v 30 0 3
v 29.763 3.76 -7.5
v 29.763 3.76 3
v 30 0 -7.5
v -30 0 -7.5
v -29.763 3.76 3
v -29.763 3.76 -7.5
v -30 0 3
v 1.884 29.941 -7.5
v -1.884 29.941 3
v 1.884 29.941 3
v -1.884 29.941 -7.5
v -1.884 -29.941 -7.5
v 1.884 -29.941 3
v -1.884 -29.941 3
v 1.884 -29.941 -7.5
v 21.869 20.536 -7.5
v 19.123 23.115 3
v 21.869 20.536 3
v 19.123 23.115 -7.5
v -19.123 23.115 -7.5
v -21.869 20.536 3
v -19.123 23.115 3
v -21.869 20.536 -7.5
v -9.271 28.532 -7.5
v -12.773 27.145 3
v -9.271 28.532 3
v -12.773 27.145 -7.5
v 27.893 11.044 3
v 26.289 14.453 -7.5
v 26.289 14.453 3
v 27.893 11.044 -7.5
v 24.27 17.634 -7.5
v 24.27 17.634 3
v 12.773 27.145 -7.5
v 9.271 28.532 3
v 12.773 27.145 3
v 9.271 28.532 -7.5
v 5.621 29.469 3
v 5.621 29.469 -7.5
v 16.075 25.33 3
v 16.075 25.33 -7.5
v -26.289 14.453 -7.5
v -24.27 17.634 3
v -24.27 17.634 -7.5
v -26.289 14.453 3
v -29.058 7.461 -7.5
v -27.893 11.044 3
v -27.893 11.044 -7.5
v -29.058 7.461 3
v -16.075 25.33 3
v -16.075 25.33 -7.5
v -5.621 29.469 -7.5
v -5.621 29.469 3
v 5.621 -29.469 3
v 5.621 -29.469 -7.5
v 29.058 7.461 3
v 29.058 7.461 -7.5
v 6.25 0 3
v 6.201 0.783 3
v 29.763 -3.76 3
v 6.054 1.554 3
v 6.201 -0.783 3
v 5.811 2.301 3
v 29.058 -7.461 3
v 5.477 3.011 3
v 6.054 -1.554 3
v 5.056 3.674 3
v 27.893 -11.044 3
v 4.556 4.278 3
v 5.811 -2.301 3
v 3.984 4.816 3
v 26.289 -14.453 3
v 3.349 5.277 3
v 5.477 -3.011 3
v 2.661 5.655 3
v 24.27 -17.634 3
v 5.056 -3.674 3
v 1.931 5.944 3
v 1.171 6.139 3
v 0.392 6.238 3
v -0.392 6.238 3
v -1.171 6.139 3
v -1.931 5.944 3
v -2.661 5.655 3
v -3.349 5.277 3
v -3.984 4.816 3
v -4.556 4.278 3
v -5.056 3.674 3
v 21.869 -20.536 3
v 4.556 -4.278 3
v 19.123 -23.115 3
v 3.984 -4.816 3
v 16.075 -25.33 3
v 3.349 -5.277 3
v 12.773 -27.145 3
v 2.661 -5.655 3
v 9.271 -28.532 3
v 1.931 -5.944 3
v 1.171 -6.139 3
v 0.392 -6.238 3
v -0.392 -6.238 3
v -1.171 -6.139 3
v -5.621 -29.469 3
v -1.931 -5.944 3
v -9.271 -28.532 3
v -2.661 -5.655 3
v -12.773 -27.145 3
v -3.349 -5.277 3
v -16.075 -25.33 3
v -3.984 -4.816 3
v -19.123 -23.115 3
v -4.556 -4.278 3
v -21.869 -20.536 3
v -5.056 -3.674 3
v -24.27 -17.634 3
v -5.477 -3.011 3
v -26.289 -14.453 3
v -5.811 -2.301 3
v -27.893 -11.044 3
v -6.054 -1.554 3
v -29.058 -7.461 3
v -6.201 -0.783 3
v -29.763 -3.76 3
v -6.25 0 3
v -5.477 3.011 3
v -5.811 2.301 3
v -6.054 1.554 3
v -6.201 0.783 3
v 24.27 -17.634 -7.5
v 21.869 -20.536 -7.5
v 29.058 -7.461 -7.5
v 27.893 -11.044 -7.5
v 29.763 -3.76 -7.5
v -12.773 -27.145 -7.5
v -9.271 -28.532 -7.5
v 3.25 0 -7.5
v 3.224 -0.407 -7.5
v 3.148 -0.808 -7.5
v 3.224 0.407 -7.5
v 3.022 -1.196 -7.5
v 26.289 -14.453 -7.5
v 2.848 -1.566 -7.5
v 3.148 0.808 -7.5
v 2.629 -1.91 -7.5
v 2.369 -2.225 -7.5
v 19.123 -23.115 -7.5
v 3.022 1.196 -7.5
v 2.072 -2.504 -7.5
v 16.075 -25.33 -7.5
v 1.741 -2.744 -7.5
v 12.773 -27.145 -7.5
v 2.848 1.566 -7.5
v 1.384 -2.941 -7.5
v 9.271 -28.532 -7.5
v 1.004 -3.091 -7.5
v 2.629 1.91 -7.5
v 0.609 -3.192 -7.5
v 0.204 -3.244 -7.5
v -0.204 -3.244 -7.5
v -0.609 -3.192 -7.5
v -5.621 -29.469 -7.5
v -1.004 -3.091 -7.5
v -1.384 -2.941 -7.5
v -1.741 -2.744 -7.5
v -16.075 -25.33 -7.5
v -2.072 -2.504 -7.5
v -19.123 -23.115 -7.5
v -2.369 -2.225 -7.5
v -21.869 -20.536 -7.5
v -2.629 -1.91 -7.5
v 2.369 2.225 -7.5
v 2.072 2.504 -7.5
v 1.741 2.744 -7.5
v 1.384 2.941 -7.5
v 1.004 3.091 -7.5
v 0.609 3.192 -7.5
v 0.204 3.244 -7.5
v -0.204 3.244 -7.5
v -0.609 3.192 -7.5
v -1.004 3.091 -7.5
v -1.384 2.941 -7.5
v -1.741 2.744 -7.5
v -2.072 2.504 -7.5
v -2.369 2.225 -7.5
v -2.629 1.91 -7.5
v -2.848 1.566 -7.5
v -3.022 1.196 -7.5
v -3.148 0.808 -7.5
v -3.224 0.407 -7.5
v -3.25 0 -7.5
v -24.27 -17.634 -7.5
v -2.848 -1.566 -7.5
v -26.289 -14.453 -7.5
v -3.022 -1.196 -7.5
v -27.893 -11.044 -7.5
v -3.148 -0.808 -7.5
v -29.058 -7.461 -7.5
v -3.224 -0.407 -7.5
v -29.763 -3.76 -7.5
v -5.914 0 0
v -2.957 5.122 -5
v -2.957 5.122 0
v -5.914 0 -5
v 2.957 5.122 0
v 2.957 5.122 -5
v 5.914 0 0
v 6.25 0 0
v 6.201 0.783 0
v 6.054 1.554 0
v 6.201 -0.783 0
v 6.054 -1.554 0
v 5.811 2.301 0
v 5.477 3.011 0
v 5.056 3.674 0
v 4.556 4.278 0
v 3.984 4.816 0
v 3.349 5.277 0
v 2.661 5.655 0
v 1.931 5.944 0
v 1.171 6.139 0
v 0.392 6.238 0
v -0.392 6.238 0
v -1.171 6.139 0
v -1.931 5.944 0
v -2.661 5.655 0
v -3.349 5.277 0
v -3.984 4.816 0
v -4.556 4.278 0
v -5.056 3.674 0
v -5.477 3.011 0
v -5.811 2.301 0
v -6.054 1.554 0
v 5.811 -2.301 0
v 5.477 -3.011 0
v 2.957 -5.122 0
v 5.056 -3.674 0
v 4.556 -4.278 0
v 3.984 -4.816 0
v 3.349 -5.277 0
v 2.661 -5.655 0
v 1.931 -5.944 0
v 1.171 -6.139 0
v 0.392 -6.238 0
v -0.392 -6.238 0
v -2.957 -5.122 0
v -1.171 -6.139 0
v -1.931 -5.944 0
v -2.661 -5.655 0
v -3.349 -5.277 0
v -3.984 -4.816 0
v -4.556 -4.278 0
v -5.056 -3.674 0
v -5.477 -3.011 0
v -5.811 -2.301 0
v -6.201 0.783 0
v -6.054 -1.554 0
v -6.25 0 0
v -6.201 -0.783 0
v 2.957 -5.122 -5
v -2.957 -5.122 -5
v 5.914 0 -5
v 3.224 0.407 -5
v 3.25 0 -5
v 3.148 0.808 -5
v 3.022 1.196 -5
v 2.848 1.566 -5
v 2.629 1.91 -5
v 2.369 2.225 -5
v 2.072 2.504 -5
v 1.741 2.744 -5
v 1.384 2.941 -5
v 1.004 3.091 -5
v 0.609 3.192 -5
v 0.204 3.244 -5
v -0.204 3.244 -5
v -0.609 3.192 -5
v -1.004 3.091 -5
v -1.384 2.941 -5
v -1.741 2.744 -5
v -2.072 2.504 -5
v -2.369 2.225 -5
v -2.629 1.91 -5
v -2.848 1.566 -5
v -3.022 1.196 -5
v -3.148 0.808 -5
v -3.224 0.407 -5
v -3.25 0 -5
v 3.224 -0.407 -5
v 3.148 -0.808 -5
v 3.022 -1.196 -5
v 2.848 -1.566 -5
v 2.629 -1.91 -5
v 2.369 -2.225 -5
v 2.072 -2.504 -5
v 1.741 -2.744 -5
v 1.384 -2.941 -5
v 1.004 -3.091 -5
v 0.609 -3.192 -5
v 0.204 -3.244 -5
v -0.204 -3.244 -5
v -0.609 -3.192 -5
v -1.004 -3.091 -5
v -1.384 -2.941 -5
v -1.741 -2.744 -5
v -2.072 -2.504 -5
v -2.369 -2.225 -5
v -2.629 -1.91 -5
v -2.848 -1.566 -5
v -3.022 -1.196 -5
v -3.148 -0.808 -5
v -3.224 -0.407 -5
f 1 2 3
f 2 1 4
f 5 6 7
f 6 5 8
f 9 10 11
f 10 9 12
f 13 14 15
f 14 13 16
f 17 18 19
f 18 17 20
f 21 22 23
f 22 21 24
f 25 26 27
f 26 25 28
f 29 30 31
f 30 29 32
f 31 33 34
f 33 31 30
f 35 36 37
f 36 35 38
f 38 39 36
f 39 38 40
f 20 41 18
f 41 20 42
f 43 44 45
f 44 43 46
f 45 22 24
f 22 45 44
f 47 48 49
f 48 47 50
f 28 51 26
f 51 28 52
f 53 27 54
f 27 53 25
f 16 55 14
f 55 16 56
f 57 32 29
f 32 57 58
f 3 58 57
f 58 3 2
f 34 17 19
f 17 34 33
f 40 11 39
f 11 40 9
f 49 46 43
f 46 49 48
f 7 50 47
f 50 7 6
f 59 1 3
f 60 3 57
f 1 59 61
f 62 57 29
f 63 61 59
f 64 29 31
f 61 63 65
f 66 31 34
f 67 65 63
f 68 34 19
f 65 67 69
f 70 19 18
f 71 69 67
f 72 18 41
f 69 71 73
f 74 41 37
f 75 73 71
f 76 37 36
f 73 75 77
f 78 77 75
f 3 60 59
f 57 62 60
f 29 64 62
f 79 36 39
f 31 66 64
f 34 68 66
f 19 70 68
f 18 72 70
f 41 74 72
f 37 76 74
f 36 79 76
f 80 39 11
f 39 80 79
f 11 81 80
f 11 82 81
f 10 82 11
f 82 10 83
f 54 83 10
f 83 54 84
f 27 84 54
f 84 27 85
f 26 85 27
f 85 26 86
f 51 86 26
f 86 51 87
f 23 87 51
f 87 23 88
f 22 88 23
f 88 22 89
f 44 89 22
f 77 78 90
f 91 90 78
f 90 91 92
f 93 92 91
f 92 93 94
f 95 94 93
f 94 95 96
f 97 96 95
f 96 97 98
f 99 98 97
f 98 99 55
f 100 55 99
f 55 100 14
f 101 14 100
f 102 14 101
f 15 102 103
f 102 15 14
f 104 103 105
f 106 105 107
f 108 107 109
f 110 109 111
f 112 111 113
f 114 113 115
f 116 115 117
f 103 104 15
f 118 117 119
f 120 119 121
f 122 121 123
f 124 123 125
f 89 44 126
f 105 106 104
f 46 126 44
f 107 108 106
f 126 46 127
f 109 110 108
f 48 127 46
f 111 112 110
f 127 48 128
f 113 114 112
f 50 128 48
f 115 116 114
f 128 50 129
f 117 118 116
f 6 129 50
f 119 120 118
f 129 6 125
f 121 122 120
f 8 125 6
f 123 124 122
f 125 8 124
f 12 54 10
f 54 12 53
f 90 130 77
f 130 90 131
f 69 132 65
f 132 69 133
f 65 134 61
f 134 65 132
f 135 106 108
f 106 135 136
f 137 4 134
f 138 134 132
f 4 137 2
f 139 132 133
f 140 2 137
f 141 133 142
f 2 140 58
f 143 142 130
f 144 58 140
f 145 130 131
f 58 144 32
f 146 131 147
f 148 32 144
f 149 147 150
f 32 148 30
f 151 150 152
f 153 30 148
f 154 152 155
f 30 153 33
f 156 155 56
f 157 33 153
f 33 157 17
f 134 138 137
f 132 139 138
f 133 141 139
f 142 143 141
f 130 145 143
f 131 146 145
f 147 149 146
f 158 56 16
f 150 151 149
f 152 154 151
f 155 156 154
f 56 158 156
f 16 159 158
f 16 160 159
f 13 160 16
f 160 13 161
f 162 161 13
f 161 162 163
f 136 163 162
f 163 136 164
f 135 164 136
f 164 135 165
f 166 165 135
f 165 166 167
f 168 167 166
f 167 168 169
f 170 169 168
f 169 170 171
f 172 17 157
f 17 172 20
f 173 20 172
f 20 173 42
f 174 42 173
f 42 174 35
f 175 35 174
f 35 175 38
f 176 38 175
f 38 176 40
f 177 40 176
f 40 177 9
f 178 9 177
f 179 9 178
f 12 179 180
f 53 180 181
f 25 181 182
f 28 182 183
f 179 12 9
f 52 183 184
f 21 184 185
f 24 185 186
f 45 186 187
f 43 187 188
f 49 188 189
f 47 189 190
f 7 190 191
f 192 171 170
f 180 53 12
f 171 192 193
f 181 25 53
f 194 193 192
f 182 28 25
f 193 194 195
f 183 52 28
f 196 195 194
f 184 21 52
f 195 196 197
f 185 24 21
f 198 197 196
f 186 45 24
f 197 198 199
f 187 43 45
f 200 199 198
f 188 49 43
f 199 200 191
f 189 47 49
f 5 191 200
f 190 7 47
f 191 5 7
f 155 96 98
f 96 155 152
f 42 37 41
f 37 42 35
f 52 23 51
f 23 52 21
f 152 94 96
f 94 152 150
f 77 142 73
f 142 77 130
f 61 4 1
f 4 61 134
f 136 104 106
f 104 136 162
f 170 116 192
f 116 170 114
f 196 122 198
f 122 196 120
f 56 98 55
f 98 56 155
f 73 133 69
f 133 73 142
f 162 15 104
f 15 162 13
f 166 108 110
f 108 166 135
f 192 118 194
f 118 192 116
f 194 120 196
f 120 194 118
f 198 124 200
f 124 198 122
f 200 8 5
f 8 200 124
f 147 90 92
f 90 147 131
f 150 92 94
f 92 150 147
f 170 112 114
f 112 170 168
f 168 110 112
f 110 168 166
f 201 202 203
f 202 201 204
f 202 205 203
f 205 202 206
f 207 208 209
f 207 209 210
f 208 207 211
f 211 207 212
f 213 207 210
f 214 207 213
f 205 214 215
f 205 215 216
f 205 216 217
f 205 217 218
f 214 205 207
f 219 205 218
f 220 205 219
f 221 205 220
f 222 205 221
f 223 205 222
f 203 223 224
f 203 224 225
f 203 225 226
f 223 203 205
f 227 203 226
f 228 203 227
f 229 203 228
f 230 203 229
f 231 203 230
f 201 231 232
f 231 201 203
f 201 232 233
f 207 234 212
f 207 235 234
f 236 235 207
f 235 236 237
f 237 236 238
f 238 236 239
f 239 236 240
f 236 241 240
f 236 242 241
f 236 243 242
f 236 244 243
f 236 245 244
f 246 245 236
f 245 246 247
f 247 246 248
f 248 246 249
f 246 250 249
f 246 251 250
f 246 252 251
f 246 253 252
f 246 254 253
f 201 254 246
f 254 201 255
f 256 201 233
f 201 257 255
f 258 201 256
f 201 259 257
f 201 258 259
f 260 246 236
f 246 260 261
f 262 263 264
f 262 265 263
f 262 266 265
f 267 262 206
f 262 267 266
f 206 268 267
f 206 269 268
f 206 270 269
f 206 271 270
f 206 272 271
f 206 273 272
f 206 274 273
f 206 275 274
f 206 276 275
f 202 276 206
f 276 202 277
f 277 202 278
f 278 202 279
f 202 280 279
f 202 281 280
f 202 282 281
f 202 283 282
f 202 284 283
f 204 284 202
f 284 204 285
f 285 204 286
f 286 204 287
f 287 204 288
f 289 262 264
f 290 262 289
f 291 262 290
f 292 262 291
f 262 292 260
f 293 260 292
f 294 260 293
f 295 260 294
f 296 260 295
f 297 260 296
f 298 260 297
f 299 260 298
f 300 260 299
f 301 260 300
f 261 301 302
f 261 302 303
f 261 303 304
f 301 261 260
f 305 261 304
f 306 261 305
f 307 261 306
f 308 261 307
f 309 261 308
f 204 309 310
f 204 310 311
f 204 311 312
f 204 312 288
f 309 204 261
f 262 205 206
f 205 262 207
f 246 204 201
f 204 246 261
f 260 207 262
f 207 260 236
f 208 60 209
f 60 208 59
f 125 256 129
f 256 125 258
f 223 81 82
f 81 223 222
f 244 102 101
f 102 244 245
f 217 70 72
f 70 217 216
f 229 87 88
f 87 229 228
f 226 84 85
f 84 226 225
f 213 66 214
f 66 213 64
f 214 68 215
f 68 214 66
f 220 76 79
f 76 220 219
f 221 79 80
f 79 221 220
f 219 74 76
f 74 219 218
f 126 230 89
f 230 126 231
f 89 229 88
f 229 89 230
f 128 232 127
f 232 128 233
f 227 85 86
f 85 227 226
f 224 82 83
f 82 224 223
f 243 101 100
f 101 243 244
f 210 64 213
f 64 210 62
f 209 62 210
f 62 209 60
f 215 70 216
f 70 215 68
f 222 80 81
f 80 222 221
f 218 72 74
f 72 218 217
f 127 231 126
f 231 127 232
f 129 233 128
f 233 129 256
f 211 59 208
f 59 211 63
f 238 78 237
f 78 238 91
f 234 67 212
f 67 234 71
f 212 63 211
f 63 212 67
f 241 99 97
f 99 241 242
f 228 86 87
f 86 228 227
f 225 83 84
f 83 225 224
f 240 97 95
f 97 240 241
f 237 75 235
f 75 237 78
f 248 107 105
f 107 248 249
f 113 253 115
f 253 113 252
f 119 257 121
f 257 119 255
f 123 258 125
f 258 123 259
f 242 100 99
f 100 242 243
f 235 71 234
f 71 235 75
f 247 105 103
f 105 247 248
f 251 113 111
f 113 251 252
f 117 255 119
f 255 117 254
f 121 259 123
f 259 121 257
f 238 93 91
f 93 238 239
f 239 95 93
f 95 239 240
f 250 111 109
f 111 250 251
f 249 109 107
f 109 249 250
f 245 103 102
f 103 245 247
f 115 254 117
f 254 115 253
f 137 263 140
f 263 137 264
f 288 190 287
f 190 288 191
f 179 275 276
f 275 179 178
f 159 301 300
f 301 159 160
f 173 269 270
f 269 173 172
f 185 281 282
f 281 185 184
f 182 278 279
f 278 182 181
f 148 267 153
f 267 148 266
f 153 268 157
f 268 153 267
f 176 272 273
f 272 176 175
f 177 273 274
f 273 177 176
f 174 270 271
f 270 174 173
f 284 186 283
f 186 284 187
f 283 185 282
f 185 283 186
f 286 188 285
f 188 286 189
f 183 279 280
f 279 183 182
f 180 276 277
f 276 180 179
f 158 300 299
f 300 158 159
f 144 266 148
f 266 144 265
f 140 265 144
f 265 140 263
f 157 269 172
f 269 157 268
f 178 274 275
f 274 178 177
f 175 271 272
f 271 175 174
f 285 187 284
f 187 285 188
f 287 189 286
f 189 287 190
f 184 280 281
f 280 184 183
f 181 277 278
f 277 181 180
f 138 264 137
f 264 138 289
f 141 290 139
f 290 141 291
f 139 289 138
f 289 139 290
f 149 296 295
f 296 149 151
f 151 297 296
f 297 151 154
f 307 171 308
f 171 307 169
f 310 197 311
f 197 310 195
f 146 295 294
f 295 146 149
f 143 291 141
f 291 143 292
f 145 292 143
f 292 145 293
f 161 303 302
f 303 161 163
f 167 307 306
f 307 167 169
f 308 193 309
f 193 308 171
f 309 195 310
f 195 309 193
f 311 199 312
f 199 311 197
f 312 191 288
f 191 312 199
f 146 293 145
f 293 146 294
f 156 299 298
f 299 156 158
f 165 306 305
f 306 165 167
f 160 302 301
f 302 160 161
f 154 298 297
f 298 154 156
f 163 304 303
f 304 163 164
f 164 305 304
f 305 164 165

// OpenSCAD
$fn = 50;

difference() {
	union() {
		translate(v = [0, 0, -7.5]) {
			cylinder(h = 10.5, r = 30.0);
		}
		#translate(v = [0, 0, -9.0]) {
			cylinder(h = 9, r = 2.875);
		}
	}
	union() {
		translate(v = [0, 0, 0]) {
			rotate(a = [0, 0, 0]) {
				difference() {
					union() {
						translate(v = [0, 0, -5]) {
							linear_extrude(height = 5) {
								polygon(points = [[5.914249999999999, 0.0], [2.957125, 5.1218907443321156], [-2.9571249999999982, 5.1218907443321156], [-5.914249999999999, 7.242867331857232e-16], [-2.9571250000000022, -5.121890744332115], [2.9571249999999956, -5.121890744332118]]);
							}
						}
					}
					union();
				}
			}
		}
		#cylinder(h = 3, r = 6.25);
		#translate(v = [0, 0, -100.0]) {
			cylinder(h = 200, r = 3.25);
		}
	}
}
